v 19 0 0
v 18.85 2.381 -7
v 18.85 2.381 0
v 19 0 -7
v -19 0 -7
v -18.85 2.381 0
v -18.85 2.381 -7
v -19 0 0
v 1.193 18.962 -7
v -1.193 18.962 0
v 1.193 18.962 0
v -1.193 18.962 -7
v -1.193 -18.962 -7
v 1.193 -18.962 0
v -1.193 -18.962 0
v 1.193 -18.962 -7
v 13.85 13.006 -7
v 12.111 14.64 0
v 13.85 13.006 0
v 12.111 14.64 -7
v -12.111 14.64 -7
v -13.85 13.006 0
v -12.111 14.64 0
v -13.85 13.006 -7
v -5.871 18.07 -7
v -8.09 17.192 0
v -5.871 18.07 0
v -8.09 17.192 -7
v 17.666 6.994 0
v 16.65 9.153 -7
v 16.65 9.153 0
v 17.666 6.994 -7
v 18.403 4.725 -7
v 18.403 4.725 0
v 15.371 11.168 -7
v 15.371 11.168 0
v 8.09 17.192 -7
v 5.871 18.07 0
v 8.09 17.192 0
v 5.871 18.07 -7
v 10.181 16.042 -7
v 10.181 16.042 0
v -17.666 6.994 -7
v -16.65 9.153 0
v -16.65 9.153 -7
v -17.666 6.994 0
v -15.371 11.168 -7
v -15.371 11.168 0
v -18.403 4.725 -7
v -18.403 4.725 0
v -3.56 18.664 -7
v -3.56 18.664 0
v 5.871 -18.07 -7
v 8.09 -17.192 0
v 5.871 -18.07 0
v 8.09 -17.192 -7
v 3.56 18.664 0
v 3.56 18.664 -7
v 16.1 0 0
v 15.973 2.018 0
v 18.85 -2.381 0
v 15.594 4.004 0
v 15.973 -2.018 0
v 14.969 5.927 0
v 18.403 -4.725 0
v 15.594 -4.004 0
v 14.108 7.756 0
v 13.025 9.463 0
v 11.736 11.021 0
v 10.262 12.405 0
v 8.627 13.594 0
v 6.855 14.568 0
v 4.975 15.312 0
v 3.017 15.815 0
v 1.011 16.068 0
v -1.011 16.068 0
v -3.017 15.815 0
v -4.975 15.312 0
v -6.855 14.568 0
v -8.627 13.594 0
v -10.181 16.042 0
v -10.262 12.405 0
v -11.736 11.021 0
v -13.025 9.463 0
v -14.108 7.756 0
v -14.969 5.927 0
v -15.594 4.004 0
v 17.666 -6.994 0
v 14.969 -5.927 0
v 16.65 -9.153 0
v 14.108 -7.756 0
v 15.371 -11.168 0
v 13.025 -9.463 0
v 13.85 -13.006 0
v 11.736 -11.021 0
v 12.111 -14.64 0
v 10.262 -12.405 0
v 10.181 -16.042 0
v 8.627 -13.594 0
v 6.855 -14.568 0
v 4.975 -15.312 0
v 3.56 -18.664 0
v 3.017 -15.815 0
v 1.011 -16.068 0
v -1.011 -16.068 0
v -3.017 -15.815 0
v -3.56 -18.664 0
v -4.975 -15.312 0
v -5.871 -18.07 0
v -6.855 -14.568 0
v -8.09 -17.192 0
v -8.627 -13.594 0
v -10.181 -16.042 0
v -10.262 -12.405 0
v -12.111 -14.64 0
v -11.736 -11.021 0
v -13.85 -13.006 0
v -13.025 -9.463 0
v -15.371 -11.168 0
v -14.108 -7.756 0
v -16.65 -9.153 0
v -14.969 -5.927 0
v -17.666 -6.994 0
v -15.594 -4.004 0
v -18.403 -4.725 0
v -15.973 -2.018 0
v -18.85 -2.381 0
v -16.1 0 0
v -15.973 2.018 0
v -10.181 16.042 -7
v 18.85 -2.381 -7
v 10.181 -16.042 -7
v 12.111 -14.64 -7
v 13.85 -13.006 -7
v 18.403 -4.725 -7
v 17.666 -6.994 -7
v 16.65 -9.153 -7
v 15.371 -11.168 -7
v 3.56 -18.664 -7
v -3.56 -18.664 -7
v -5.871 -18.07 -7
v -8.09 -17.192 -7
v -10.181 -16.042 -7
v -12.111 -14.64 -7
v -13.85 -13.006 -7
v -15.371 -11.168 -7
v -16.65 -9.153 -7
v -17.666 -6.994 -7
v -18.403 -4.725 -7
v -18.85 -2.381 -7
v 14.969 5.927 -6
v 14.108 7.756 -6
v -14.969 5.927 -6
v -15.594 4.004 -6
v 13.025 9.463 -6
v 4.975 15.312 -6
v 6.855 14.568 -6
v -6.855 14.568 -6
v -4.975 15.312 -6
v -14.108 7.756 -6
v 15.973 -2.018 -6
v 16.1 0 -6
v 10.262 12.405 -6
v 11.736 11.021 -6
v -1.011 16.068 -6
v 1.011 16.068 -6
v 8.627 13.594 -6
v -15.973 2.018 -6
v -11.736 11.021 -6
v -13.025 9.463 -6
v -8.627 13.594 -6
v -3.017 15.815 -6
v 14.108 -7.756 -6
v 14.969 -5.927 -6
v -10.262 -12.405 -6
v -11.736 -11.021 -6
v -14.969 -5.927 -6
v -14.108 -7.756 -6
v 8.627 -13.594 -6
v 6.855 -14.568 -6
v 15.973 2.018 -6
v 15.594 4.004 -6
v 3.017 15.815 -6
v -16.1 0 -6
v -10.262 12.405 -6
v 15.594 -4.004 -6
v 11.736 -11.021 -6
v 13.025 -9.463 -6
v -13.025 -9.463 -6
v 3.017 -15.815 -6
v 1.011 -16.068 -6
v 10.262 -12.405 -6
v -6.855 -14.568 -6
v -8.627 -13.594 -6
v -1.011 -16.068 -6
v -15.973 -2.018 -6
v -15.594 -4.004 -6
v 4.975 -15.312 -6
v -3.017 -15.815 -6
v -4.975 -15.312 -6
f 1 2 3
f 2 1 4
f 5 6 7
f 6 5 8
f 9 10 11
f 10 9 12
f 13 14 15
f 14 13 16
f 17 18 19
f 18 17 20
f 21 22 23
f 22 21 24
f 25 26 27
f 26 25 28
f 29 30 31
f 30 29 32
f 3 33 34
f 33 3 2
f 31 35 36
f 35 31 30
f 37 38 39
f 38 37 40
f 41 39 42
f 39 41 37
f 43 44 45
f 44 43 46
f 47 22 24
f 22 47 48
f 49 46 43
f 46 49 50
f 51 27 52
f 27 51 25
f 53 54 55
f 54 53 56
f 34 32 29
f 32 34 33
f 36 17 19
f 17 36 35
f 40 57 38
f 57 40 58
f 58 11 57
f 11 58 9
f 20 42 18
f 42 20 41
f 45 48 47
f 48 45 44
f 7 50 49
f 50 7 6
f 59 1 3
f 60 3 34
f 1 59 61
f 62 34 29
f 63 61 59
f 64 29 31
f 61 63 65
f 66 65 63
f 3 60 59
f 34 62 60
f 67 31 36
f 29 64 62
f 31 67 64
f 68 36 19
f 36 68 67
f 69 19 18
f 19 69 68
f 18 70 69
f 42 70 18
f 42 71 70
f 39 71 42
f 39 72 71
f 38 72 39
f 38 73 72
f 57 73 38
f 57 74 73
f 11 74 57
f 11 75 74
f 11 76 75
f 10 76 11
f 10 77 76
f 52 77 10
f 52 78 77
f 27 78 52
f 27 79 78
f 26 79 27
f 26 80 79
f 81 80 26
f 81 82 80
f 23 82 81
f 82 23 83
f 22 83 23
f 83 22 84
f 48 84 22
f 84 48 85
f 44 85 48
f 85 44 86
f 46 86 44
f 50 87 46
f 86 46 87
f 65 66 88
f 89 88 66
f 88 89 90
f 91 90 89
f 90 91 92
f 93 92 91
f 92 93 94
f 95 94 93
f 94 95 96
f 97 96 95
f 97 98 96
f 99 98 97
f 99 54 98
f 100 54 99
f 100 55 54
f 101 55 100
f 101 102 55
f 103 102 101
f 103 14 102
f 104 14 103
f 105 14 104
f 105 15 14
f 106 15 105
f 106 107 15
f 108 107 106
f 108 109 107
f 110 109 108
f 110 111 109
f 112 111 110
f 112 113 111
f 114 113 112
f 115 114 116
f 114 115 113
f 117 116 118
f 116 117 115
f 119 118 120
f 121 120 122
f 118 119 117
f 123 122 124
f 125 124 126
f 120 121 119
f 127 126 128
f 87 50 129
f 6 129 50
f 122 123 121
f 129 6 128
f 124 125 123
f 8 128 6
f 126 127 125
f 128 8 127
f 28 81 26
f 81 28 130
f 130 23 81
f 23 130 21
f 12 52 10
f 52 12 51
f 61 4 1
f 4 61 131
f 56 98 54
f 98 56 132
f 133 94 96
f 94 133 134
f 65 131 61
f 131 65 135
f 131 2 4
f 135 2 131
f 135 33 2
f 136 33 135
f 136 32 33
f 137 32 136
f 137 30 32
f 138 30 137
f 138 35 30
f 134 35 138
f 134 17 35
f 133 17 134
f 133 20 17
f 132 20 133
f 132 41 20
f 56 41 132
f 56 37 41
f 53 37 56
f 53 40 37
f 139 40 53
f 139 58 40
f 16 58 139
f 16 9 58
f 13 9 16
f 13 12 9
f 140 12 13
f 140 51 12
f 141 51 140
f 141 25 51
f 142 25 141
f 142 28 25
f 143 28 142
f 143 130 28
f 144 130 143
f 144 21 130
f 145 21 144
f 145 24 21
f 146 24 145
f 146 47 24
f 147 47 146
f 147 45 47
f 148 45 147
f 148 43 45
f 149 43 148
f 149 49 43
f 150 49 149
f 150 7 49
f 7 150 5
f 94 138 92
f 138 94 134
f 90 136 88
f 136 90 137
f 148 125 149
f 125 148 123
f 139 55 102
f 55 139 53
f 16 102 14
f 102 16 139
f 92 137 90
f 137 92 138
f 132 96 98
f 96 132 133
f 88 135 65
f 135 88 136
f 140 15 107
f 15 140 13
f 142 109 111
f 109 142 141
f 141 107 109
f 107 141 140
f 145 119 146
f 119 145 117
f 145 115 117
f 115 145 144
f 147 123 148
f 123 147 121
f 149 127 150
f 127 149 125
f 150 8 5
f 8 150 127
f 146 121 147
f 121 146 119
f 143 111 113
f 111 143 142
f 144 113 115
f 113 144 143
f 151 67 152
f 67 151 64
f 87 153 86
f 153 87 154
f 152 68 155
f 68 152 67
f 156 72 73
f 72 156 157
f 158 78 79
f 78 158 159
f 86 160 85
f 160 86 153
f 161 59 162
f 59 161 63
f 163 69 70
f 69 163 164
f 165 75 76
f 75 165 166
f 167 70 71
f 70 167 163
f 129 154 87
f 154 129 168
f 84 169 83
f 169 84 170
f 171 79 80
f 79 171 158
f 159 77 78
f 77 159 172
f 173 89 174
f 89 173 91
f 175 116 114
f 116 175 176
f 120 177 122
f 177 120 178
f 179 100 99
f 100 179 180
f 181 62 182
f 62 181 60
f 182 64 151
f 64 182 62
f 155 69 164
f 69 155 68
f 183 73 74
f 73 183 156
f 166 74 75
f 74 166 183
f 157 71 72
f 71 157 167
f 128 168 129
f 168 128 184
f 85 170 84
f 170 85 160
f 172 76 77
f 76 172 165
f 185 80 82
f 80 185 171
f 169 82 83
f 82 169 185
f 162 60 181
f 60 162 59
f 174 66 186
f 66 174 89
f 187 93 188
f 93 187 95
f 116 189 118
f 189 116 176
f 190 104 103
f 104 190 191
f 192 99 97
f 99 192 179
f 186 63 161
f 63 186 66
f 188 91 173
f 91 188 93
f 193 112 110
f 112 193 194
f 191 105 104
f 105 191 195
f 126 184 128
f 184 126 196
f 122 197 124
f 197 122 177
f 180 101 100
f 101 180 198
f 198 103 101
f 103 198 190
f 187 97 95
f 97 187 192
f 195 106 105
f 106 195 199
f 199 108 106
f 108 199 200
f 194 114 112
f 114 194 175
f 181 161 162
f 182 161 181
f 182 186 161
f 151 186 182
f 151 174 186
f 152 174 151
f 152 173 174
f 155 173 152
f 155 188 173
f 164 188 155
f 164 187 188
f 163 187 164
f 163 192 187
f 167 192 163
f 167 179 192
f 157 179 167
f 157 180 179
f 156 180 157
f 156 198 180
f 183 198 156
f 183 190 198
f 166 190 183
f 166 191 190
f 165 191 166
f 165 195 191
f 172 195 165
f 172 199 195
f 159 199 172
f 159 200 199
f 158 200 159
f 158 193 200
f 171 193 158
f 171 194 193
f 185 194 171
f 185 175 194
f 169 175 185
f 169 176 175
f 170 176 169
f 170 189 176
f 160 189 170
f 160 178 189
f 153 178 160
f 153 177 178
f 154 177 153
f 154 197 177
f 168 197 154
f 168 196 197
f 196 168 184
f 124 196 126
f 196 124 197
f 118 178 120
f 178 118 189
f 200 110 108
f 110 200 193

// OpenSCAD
$fn = 50;


difference() {
	union() {
		translate(v = [0, 0, -7.0000000000]) {
			cylinder(h = 7, r = 19.0000000000);
		}
	}
	union() {
		#translate(v = [0, 0, -6.0000000000]) {
			cylinder(h = 6, r = 16.1000000000);
		}
	}
}
